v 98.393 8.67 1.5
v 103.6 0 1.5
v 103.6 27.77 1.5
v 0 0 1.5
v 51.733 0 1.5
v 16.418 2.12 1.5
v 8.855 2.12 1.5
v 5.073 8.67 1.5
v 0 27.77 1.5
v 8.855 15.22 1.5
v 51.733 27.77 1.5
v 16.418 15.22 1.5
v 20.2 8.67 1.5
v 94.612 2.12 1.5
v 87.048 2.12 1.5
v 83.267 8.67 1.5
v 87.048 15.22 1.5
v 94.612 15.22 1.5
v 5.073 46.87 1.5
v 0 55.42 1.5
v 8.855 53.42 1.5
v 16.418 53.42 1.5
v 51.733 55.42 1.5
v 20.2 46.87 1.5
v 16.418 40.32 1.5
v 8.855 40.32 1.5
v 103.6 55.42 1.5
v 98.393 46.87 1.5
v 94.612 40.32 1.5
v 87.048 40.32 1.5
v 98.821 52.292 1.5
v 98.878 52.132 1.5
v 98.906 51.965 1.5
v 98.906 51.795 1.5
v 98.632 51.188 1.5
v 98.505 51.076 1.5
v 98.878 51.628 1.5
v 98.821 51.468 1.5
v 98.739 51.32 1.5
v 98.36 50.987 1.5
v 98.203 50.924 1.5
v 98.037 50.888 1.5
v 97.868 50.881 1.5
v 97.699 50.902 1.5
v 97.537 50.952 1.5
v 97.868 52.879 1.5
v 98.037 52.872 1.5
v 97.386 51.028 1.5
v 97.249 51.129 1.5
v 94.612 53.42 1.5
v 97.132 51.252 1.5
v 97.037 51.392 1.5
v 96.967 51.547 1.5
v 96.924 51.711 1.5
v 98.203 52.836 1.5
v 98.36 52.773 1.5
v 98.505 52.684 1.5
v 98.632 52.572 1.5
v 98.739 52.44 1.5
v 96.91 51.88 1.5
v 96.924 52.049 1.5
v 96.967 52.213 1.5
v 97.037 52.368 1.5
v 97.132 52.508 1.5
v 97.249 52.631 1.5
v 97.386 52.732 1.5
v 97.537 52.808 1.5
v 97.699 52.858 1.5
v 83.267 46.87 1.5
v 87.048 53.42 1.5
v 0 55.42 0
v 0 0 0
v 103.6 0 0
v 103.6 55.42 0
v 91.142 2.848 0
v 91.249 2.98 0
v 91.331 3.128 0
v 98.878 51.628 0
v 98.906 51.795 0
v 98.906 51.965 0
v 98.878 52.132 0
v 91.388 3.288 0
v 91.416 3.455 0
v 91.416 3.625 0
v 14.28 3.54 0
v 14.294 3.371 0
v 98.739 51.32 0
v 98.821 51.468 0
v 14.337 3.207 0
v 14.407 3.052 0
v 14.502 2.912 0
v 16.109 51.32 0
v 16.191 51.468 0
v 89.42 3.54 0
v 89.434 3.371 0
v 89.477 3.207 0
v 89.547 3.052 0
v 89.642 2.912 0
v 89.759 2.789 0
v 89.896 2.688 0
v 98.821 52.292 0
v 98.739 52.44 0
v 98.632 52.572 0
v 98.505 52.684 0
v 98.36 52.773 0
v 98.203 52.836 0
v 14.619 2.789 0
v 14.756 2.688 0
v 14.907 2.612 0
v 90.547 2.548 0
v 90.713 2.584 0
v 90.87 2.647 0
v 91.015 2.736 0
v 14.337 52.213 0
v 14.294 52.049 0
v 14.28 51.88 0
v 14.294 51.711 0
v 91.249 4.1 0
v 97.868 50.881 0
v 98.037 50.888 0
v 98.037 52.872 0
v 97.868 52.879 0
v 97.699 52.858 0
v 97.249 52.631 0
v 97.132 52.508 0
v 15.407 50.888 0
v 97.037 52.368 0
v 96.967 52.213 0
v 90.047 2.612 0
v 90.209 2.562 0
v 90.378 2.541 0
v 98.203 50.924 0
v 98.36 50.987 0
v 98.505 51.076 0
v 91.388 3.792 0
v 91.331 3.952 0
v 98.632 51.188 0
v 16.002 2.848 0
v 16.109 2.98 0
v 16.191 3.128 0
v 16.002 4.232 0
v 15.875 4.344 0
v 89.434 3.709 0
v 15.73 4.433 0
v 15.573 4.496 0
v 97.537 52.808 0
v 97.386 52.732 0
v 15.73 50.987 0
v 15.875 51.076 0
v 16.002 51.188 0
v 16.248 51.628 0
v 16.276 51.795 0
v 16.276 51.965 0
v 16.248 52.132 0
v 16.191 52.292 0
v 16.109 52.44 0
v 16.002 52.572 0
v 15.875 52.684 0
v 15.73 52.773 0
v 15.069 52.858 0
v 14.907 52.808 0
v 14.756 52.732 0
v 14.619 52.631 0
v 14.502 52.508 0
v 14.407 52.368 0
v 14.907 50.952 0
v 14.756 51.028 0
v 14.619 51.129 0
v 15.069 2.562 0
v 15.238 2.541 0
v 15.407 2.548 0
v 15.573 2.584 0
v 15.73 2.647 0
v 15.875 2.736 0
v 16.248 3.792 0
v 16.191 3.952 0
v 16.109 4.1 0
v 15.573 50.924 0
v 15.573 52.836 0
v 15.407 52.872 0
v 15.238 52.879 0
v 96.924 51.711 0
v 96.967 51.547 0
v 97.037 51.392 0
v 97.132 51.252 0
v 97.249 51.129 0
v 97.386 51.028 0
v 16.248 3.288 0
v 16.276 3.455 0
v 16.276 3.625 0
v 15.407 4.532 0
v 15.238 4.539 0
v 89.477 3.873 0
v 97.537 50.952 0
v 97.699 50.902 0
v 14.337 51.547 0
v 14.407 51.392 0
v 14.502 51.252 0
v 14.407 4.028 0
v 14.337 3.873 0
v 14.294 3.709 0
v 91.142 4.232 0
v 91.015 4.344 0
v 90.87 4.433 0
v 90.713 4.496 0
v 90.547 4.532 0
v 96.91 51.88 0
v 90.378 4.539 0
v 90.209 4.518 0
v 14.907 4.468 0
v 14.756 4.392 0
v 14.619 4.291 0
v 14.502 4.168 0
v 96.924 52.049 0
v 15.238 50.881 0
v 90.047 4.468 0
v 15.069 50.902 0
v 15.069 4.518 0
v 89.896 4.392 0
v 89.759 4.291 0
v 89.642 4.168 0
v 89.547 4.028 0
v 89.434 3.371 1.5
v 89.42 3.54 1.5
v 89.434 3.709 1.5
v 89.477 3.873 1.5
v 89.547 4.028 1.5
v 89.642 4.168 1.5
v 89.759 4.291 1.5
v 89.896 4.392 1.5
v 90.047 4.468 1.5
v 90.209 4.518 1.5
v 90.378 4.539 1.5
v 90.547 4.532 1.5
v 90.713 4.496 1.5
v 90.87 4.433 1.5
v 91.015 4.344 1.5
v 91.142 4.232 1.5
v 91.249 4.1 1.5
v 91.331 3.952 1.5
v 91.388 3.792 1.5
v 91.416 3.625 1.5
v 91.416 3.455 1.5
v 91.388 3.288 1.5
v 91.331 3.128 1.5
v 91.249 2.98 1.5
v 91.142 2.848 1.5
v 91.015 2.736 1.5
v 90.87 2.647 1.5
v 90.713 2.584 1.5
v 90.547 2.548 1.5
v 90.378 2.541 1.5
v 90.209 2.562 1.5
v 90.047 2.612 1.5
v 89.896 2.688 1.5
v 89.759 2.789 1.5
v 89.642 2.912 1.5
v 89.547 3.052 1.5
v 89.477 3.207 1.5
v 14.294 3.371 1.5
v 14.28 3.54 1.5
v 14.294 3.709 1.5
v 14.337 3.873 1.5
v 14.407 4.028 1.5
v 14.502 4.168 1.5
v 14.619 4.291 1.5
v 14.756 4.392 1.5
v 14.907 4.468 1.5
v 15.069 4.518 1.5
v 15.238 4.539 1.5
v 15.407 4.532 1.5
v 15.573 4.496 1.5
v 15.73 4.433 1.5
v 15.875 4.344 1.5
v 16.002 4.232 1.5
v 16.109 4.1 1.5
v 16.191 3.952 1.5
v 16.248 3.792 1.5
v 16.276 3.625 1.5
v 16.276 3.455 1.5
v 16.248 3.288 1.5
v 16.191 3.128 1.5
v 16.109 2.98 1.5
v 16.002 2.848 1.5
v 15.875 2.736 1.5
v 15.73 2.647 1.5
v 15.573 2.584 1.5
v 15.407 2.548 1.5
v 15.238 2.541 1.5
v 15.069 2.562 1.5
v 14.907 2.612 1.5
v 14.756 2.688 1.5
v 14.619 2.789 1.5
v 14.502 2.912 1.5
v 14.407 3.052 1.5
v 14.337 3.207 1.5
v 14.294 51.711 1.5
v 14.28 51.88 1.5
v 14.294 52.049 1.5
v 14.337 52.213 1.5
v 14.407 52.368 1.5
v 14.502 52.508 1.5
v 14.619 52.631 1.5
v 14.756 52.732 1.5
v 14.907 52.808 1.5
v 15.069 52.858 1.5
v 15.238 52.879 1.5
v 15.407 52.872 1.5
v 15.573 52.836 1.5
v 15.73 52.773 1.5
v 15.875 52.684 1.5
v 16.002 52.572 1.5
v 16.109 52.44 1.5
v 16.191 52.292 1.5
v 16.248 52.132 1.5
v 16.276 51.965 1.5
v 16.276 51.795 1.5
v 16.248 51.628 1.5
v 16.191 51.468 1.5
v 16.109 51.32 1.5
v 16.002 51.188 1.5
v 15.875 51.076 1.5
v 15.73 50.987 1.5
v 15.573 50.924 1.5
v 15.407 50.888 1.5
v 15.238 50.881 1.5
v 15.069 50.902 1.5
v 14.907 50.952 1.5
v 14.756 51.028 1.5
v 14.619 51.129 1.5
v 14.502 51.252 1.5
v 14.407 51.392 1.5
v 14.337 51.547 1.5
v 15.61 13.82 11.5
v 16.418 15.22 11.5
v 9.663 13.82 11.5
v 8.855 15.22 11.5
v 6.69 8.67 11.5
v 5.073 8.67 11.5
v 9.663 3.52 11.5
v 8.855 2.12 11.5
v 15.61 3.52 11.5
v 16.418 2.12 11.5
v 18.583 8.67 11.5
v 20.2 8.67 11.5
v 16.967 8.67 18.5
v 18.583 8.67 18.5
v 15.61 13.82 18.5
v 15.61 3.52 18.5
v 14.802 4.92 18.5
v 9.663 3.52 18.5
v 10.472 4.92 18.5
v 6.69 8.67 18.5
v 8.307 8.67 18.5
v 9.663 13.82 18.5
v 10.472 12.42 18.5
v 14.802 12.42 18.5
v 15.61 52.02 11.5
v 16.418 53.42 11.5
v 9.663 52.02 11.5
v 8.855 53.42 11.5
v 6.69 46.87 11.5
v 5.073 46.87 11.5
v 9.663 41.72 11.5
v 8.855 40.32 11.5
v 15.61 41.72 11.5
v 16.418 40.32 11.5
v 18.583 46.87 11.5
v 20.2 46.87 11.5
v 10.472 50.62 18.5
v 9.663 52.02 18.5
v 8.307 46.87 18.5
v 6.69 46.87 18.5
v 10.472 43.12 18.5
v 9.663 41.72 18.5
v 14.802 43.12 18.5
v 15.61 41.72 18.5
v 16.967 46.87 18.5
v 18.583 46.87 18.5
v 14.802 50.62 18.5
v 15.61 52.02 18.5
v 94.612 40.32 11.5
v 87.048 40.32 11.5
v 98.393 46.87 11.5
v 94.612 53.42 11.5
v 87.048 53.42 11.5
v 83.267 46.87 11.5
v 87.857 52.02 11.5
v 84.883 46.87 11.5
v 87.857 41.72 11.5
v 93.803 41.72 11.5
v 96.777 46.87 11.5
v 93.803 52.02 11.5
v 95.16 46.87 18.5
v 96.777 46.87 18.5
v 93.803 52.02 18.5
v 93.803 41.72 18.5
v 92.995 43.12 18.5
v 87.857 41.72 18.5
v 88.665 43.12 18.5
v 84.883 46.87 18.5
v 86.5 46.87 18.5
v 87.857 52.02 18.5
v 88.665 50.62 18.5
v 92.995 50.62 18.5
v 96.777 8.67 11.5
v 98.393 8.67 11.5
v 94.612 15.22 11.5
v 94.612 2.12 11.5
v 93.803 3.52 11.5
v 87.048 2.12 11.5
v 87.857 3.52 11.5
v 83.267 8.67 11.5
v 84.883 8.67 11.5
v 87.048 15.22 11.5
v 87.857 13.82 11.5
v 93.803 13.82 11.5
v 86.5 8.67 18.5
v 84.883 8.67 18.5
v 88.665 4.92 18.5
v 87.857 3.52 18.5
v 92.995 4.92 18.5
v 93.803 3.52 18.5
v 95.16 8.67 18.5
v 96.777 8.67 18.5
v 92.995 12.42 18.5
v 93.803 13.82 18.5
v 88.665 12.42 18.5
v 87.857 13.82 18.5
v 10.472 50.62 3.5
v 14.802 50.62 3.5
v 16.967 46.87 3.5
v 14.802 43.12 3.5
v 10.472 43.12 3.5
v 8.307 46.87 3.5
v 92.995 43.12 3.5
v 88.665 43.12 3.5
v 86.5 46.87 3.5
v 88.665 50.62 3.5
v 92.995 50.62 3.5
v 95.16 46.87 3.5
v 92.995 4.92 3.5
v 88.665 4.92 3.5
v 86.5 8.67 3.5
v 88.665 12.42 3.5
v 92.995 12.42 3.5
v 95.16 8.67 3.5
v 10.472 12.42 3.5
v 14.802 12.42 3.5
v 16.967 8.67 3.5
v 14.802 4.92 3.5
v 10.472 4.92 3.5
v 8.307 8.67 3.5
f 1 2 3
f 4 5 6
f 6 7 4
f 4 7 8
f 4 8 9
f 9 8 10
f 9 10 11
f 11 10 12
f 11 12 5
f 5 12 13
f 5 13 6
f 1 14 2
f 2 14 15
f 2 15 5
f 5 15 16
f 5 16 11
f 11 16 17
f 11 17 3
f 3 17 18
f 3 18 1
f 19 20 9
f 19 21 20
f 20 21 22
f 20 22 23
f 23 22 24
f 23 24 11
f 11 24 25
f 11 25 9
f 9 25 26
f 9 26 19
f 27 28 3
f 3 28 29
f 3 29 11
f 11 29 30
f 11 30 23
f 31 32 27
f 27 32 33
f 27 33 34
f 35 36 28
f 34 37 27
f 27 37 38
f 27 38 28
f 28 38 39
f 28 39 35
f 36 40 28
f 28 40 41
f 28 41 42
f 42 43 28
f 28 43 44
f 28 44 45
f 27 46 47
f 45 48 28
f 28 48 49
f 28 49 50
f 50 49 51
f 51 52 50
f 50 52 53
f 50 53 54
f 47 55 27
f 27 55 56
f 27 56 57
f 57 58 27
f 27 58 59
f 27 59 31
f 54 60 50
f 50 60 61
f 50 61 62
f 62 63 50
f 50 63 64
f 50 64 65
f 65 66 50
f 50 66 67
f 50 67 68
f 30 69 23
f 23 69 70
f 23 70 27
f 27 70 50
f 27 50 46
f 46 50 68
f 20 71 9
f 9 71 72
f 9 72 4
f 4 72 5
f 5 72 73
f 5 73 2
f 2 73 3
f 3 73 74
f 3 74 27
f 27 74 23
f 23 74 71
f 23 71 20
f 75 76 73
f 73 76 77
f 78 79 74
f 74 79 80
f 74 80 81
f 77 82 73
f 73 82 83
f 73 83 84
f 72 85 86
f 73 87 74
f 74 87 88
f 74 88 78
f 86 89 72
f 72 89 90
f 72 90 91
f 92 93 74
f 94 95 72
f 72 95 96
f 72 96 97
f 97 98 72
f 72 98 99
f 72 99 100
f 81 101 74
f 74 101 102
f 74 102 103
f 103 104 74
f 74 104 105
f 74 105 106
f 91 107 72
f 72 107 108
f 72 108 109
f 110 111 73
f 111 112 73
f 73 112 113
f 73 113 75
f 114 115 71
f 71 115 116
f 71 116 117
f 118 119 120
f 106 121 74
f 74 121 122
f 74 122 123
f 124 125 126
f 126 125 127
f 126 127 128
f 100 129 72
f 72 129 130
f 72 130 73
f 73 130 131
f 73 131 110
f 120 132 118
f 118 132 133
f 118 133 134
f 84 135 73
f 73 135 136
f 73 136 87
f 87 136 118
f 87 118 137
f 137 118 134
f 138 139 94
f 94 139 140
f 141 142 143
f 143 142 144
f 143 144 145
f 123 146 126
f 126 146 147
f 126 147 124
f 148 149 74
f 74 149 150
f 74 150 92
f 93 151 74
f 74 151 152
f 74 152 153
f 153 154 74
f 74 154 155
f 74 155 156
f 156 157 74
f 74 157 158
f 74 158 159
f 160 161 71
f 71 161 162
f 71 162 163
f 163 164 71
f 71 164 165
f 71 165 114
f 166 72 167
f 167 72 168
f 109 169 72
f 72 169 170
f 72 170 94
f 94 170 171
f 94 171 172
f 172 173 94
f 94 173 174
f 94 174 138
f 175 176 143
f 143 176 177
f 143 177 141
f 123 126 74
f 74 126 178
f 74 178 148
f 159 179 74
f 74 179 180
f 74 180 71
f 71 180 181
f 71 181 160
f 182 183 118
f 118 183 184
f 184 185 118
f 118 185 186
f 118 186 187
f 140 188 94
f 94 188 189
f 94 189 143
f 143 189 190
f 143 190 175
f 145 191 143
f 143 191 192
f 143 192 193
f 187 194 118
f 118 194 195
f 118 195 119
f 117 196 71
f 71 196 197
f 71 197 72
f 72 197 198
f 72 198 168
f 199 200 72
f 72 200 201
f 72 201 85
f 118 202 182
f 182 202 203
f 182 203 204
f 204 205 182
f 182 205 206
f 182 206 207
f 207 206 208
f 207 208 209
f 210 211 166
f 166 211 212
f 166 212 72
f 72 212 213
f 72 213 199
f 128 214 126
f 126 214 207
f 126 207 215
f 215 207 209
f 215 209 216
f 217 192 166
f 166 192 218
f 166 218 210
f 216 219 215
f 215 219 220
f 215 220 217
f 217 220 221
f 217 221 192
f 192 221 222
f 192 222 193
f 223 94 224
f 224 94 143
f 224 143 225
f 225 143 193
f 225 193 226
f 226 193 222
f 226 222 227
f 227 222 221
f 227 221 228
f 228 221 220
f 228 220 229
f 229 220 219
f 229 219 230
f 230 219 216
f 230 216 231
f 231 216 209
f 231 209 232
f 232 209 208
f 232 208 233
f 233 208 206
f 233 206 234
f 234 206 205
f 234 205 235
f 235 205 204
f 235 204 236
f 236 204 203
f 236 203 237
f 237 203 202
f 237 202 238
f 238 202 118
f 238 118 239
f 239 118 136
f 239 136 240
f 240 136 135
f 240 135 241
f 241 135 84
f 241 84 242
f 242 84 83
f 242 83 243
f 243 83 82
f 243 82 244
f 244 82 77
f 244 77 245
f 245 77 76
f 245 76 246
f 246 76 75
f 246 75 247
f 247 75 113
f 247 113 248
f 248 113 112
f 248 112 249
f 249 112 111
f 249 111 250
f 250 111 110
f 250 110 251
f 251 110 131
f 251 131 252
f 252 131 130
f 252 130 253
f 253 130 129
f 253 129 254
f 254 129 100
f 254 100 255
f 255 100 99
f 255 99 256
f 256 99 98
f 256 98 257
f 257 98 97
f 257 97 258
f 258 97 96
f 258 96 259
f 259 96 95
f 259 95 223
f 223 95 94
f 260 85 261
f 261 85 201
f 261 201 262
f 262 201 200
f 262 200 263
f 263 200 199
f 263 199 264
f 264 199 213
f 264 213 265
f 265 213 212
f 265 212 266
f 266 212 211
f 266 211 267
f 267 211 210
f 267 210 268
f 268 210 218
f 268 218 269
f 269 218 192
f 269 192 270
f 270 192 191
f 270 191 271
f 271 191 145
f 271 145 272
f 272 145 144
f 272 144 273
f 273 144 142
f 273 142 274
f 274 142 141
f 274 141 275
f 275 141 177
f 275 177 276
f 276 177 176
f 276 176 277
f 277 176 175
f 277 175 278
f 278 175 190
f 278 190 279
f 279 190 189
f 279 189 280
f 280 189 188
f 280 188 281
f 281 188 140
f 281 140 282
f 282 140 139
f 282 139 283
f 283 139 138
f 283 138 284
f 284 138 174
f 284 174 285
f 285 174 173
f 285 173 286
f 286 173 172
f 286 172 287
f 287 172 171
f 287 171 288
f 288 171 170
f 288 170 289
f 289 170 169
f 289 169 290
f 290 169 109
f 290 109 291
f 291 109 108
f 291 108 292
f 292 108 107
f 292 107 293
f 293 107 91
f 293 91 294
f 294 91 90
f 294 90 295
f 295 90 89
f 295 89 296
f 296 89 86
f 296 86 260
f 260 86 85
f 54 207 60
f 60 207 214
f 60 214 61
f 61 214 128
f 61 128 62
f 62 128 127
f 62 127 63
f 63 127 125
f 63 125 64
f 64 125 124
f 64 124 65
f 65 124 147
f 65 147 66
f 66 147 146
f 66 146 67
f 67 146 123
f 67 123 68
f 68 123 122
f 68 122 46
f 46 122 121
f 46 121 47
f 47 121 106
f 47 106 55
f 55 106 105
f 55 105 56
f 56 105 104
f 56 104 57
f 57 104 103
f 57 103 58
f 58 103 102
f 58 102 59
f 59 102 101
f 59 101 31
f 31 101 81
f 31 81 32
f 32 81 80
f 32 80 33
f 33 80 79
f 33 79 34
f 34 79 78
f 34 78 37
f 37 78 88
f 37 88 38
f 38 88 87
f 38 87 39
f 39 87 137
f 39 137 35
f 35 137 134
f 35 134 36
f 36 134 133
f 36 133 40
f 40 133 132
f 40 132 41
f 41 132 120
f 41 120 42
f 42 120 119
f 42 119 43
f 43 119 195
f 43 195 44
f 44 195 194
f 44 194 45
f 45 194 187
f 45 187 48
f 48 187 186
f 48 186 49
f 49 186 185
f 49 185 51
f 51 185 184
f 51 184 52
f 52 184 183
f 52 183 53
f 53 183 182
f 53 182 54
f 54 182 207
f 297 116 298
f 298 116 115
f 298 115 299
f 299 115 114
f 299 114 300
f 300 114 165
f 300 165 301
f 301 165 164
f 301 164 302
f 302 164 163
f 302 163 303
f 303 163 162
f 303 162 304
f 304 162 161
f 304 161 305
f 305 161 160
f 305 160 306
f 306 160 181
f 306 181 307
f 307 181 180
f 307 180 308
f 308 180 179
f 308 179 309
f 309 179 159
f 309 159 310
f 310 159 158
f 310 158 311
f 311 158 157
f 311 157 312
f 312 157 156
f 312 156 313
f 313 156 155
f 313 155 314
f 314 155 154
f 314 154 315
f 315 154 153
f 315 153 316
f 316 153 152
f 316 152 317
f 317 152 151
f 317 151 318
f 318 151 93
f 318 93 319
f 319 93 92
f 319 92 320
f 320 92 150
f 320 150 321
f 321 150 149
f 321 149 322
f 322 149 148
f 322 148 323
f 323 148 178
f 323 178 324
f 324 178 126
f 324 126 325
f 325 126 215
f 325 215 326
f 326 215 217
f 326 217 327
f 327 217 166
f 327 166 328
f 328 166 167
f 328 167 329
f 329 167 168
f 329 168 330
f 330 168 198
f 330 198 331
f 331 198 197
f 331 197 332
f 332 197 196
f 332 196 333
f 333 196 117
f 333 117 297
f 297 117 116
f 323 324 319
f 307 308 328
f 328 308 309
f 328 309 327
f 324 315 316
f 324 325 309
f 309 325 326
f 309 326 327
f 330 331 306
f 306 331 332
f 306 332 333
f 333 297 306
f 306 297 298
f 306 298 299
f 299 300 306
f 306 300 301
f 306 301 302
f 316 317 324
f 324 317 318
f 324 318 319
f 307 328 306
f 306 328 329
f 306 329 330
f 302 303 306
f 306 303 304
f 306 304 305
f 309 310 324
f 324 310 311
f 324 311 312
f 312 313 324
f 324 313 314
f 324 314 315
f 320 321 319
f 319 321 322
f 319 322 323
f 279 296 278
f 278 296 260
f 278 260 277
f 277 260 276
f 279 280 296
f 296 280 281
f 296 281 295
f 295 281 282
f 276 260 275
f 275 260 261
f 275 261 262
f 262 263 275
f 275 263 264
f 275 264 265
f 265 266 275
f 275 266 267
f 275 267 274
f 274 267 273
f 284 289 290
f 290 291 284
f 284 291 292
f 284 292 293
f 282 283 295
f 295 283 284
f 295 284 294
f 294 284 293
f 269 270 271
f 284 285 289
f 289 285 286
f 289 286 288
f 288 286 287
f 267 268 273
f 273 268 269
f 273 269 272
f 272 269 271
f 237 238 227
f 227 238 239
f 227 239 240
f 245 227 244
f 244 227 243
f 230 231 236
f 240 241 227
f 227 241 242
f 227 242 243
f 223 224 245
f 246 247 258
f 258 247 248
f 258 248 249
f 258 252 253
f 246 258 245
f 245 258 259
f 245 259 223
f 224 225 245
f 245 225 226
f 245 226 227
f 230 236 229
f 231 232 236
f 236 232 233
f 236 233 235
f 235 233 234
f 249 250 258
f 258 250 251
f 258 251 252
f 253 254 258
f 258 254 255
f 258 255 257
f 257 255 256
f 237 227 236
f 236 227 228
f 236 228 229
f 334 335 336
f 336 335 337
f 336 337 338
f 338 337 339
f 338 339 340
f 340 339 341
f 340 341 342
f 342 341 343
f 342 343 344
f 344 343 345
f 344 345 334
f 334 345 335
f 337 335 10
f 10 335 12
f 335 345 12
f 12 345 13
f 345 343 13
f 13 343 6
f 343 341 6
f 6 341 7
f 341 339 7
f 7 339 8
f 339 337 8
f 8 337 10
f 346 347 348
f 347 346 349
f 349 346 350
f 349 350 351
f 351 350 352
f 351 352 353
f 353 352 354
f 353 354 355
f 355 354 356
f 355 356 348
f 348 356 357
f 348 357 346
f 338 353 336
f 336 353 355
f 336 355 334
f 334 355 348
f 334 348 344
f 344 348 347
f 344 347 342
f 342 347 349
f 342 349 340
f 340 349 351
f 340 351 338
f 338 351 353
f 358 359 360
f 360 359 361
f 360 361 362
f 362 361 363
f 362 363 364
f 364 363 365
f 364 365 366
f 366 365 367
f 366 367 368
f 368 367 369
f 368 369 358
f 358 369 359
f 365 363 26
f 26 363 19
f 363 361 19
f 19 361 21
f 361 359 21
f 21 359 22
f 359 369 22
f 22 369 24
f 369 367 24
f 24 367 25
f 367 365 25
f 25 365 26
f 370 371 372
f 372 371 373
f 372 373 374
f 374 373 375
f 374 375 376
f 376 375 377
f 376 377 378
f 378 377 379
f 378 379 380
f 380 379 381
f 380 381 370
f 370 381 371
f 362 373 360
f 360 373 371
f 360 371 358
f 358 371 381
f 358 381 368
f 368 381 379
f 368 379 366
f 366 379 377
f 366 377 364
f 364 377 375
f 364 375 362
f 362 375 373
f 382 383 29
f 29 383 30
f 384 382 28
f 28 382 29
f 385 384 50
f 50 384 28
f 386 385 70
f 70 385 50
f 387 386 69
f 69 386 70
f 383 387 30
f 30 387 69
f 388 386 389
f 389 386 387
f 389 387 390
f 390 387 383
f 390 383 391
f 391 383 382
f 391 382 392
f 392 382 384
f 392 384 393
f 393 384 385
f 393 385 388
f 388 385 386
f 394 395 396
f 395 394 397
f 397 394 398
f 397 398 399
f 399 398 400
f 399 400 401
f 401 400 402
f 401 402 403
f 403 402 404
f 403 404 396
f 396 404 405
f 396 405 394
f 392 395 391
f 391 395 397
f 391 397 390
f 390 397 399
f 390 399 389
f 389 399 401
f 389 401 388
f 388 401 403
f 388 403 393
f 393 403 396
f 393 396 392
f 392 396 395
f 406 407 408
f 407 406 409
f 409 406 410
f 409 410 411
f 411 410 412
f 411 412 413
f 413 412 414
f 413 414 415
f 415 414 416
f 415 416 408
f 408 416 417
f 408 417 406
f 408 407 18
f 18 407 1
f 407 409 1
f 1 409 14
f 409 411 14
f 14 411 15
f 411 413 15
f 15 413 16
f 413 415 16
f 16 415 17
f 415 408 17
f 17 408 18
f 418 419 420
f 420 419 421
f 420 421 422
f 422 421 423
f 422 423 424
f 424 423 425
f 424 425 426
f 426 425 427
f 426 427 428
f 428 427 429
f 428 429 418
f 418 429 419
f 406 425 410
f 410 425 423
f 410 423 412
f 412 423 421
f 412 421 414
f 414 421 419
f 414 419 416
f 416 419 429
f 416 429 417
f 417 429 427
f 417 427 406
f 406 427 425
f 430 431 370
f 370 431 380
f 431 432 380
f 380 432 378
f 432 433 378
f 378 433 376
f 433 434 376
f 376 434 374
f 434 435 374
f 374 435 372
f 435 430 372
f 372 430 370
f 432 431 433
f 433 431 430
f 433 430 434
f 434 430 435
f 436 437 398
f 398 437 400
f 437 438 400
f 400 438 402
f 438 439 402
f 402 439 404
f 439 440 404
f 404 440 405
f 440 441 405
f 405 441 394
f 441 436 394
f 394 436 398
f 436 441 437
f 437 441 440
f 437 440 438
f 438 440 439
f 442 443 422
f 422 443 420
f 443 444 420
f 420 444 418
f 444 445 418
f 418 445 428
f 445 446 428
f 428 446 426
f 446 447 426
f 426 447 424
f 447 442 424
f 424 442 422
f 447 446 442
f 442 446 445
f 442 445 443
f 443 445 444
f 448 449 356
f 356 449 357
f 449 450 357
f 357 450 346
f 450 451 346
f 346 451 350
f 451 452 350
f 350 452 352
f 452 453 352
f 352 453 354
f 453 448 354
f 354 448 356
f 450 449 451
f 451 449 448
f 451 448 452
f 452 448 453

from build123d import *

# Parameters (mm, degrees)
SKETCH1_W           = 103.6
SKETCH1_H           = 55.42
BOSS_EXTRUDE1_DEPTH = 1.5
SKETCH2_R           = 1
CUT_EXTRUDE1_DEPTH  = 1.5
BOSS_EXTRUDE2_DEPTH = 17
BOSS_EXTRUDE4_DEPTH = 10
CUT_EXTRUDE2_DEPTH  = 15


with BuildPart() as part:
    # Sketch1 → Boss-Extrude1 (new body)
    with BuildSketch(Plane.XY):
        with Locations((51.8, 27.71)):
            Rectangle(SKETCH1_W, SKETCH1_H)
    extrude(amount=BOSS_EXTRUDE1_DEPTH)

    # Sketch2 → Cut-Extrude1 (cut)
    with BuildSketch(Plane(origin=(0, 0, 0), x_dir=(-1, 0, 0), z_dir=(0, 0, -1))):
        with Locations((-90.42, 3.54)):
            Circle(SKETCH2_R)
        with Locations((-15.28, 3.54)):
            Circle(SKETCH2_R)
        with Locations((-97.91, 51.88)):
            Circle(SKETCH2_R)
        with Locations((-15.28, 51.88)):
            Circle(SKETCH2_R)
    extrude(amount=-CUT_EXTRUDE1_DEPTH, mode=Mode.SUBTRACT)

    # Sketch3 → Boss-Extrude2 (add)
    with BuildSketch(Plane.XY.offset(1.5)):
        Polygon((9.663353886, 41.72), (15.610061659, 41.72), (18.583415545, 46.87), (15.610061659, 52.02), (9.663353886, 52.02), (6.69, 46.87), align=None)
        Polygon((6.69, 8.67), (9.663353886, 13.82), (15.610061659, 13.82), (18.583415545, 8.67), (15.610061659, 3.52), (9.663353886, 3.52), align=None)
        Polygon((96.776831091, 46.87), (93.803477204, 41.72), (87.856769432, 41.72), (84.883415545, 46.87), (87.856769432, 52.02), (93.803477204, 52.02), align=None)
        Polygon((93.803477204, 13.82), (87.856769432, 13.82), (84.883415545, 8.67), (87.856769432, 3.52), (93.803477204, 3.52), (96.776831091, 8.67), align=None)
    extrude(amount=BOSS_EXTRUDE2_DEPTH)

    # Sketch4 → Boss-Extrude4 (add)
    with BuildSketch(Plane.XY.offset(1.5)):
        Polygon((20.199996299, 46.87), (17.267876695, 51.948580128), (16.418352036, 53.42), (14.289848496, 53.42), (8.855063509, 53.42), (5.073419246, 46.87), (8.855063509, 40.32), (16.418352036, 40.32), align=None)
        Polygon((18.583415545, 46.87), (16.05544113, 51.248580128), (15.610061659, 52.02), (14.289848496, 52.02), (9.663353886, 52.02), (6.69, 46.87), (9.663353886, 41.72), (15.610061659, 41.72), align=None, mode=Mode.SUBTRACT)
        Polygon((8.855063509, 2.12), (14.28020002, 2.12), (16.418352036, 2.12), (17.226260541, 3.519338579), (20.199996299, 8.67), (16.418352036, 15.22), (8.855063509, 15.22), (5.073419246, 8.67), align=None)
        Polygon((9.663353886, 3.52), (14.28020002, 3.52), (15.610061659, 3.52), (16.013824976, 4.219338579), (18.583415545, 8.67), (15.610061659, 13.82), (9.663353886, 13.82), (6.69, 8.67), align=None, mode=Mode.SUBTRACT)
        Polygon((83.266834792, 8.67), (87.048479055, 2.12), (89.42020002, 2.12), (91.41979998, 2.12), (94.611767581, 2.12), (98.393411844, 8.67), (94.611767581, 15.22), (87.048479055, 15.22), align=None)
        Polygon((84.883415545, 8.67), (87.856769432, 3.52), (89.42020002, 3.52), (91.41979998, 3.52), (93.803477204, 3.52), (96.776831091, 8.67), (93.803477204, 13.82), (87.856769432, 13.82), align=None, mode=Mode.SUBTRACT)
        Polygon((98.393411844, 46.87), (94.611767581, 53.42), (87.048479055, 53.42), (83.266834792, 46.87), (87.048479055, 40.32), (94.611767581, 40.32), align=None)
        Polygon((96.776831091, 46.87), (93.803477204, 52.02), (87.856769432, 52.02), (84.883415545, 46.87), (87.856769432, 41.72), (93.803477204, 41.72), align=None, mode=Mode.SUBTRACT)
    extrude(amount=BOSS_EXTRUDE4_DEPTH)

    # Sketch5 → Cut-Extrude2 (cut)
    with BuildSketch(Plane.XY.offset(18.5)):
        Polygon((14.801771282, 50.62), (10.471644263, 50.62), (8.306580754, 46.87), (10.471644263, 43.12), (14.801771282, 43.12), (16.966834792, 46.87), align=None)
        Polygon((88.665059808, 43.12), (92.995186827, 43.12), (95.160250337, 46.87), (92.995186827, 50.62), (88.665059808, 50.62), (86.499996299, 46.87), align=None)
        Polygon((88.665059808, 4.92), (92.995186827, 4.92), (95.160250337, 8.67), (92.995186827, 12.42), (88.665059808, 12.42), (86.499996299, 8.67), align=None)
        Polygon((14.801771282, 12.42), (10.471644263, 12.42), (8.306580754, 8.67), (10.471644263, 4.92), (14.801771282, 4.92), (16.966834792, 8.67), align=None)
    extrude(amount=-CUT_EXTRUDE2_DEPTH, mode=Mode.SUBTRACT)


solid = part.part
